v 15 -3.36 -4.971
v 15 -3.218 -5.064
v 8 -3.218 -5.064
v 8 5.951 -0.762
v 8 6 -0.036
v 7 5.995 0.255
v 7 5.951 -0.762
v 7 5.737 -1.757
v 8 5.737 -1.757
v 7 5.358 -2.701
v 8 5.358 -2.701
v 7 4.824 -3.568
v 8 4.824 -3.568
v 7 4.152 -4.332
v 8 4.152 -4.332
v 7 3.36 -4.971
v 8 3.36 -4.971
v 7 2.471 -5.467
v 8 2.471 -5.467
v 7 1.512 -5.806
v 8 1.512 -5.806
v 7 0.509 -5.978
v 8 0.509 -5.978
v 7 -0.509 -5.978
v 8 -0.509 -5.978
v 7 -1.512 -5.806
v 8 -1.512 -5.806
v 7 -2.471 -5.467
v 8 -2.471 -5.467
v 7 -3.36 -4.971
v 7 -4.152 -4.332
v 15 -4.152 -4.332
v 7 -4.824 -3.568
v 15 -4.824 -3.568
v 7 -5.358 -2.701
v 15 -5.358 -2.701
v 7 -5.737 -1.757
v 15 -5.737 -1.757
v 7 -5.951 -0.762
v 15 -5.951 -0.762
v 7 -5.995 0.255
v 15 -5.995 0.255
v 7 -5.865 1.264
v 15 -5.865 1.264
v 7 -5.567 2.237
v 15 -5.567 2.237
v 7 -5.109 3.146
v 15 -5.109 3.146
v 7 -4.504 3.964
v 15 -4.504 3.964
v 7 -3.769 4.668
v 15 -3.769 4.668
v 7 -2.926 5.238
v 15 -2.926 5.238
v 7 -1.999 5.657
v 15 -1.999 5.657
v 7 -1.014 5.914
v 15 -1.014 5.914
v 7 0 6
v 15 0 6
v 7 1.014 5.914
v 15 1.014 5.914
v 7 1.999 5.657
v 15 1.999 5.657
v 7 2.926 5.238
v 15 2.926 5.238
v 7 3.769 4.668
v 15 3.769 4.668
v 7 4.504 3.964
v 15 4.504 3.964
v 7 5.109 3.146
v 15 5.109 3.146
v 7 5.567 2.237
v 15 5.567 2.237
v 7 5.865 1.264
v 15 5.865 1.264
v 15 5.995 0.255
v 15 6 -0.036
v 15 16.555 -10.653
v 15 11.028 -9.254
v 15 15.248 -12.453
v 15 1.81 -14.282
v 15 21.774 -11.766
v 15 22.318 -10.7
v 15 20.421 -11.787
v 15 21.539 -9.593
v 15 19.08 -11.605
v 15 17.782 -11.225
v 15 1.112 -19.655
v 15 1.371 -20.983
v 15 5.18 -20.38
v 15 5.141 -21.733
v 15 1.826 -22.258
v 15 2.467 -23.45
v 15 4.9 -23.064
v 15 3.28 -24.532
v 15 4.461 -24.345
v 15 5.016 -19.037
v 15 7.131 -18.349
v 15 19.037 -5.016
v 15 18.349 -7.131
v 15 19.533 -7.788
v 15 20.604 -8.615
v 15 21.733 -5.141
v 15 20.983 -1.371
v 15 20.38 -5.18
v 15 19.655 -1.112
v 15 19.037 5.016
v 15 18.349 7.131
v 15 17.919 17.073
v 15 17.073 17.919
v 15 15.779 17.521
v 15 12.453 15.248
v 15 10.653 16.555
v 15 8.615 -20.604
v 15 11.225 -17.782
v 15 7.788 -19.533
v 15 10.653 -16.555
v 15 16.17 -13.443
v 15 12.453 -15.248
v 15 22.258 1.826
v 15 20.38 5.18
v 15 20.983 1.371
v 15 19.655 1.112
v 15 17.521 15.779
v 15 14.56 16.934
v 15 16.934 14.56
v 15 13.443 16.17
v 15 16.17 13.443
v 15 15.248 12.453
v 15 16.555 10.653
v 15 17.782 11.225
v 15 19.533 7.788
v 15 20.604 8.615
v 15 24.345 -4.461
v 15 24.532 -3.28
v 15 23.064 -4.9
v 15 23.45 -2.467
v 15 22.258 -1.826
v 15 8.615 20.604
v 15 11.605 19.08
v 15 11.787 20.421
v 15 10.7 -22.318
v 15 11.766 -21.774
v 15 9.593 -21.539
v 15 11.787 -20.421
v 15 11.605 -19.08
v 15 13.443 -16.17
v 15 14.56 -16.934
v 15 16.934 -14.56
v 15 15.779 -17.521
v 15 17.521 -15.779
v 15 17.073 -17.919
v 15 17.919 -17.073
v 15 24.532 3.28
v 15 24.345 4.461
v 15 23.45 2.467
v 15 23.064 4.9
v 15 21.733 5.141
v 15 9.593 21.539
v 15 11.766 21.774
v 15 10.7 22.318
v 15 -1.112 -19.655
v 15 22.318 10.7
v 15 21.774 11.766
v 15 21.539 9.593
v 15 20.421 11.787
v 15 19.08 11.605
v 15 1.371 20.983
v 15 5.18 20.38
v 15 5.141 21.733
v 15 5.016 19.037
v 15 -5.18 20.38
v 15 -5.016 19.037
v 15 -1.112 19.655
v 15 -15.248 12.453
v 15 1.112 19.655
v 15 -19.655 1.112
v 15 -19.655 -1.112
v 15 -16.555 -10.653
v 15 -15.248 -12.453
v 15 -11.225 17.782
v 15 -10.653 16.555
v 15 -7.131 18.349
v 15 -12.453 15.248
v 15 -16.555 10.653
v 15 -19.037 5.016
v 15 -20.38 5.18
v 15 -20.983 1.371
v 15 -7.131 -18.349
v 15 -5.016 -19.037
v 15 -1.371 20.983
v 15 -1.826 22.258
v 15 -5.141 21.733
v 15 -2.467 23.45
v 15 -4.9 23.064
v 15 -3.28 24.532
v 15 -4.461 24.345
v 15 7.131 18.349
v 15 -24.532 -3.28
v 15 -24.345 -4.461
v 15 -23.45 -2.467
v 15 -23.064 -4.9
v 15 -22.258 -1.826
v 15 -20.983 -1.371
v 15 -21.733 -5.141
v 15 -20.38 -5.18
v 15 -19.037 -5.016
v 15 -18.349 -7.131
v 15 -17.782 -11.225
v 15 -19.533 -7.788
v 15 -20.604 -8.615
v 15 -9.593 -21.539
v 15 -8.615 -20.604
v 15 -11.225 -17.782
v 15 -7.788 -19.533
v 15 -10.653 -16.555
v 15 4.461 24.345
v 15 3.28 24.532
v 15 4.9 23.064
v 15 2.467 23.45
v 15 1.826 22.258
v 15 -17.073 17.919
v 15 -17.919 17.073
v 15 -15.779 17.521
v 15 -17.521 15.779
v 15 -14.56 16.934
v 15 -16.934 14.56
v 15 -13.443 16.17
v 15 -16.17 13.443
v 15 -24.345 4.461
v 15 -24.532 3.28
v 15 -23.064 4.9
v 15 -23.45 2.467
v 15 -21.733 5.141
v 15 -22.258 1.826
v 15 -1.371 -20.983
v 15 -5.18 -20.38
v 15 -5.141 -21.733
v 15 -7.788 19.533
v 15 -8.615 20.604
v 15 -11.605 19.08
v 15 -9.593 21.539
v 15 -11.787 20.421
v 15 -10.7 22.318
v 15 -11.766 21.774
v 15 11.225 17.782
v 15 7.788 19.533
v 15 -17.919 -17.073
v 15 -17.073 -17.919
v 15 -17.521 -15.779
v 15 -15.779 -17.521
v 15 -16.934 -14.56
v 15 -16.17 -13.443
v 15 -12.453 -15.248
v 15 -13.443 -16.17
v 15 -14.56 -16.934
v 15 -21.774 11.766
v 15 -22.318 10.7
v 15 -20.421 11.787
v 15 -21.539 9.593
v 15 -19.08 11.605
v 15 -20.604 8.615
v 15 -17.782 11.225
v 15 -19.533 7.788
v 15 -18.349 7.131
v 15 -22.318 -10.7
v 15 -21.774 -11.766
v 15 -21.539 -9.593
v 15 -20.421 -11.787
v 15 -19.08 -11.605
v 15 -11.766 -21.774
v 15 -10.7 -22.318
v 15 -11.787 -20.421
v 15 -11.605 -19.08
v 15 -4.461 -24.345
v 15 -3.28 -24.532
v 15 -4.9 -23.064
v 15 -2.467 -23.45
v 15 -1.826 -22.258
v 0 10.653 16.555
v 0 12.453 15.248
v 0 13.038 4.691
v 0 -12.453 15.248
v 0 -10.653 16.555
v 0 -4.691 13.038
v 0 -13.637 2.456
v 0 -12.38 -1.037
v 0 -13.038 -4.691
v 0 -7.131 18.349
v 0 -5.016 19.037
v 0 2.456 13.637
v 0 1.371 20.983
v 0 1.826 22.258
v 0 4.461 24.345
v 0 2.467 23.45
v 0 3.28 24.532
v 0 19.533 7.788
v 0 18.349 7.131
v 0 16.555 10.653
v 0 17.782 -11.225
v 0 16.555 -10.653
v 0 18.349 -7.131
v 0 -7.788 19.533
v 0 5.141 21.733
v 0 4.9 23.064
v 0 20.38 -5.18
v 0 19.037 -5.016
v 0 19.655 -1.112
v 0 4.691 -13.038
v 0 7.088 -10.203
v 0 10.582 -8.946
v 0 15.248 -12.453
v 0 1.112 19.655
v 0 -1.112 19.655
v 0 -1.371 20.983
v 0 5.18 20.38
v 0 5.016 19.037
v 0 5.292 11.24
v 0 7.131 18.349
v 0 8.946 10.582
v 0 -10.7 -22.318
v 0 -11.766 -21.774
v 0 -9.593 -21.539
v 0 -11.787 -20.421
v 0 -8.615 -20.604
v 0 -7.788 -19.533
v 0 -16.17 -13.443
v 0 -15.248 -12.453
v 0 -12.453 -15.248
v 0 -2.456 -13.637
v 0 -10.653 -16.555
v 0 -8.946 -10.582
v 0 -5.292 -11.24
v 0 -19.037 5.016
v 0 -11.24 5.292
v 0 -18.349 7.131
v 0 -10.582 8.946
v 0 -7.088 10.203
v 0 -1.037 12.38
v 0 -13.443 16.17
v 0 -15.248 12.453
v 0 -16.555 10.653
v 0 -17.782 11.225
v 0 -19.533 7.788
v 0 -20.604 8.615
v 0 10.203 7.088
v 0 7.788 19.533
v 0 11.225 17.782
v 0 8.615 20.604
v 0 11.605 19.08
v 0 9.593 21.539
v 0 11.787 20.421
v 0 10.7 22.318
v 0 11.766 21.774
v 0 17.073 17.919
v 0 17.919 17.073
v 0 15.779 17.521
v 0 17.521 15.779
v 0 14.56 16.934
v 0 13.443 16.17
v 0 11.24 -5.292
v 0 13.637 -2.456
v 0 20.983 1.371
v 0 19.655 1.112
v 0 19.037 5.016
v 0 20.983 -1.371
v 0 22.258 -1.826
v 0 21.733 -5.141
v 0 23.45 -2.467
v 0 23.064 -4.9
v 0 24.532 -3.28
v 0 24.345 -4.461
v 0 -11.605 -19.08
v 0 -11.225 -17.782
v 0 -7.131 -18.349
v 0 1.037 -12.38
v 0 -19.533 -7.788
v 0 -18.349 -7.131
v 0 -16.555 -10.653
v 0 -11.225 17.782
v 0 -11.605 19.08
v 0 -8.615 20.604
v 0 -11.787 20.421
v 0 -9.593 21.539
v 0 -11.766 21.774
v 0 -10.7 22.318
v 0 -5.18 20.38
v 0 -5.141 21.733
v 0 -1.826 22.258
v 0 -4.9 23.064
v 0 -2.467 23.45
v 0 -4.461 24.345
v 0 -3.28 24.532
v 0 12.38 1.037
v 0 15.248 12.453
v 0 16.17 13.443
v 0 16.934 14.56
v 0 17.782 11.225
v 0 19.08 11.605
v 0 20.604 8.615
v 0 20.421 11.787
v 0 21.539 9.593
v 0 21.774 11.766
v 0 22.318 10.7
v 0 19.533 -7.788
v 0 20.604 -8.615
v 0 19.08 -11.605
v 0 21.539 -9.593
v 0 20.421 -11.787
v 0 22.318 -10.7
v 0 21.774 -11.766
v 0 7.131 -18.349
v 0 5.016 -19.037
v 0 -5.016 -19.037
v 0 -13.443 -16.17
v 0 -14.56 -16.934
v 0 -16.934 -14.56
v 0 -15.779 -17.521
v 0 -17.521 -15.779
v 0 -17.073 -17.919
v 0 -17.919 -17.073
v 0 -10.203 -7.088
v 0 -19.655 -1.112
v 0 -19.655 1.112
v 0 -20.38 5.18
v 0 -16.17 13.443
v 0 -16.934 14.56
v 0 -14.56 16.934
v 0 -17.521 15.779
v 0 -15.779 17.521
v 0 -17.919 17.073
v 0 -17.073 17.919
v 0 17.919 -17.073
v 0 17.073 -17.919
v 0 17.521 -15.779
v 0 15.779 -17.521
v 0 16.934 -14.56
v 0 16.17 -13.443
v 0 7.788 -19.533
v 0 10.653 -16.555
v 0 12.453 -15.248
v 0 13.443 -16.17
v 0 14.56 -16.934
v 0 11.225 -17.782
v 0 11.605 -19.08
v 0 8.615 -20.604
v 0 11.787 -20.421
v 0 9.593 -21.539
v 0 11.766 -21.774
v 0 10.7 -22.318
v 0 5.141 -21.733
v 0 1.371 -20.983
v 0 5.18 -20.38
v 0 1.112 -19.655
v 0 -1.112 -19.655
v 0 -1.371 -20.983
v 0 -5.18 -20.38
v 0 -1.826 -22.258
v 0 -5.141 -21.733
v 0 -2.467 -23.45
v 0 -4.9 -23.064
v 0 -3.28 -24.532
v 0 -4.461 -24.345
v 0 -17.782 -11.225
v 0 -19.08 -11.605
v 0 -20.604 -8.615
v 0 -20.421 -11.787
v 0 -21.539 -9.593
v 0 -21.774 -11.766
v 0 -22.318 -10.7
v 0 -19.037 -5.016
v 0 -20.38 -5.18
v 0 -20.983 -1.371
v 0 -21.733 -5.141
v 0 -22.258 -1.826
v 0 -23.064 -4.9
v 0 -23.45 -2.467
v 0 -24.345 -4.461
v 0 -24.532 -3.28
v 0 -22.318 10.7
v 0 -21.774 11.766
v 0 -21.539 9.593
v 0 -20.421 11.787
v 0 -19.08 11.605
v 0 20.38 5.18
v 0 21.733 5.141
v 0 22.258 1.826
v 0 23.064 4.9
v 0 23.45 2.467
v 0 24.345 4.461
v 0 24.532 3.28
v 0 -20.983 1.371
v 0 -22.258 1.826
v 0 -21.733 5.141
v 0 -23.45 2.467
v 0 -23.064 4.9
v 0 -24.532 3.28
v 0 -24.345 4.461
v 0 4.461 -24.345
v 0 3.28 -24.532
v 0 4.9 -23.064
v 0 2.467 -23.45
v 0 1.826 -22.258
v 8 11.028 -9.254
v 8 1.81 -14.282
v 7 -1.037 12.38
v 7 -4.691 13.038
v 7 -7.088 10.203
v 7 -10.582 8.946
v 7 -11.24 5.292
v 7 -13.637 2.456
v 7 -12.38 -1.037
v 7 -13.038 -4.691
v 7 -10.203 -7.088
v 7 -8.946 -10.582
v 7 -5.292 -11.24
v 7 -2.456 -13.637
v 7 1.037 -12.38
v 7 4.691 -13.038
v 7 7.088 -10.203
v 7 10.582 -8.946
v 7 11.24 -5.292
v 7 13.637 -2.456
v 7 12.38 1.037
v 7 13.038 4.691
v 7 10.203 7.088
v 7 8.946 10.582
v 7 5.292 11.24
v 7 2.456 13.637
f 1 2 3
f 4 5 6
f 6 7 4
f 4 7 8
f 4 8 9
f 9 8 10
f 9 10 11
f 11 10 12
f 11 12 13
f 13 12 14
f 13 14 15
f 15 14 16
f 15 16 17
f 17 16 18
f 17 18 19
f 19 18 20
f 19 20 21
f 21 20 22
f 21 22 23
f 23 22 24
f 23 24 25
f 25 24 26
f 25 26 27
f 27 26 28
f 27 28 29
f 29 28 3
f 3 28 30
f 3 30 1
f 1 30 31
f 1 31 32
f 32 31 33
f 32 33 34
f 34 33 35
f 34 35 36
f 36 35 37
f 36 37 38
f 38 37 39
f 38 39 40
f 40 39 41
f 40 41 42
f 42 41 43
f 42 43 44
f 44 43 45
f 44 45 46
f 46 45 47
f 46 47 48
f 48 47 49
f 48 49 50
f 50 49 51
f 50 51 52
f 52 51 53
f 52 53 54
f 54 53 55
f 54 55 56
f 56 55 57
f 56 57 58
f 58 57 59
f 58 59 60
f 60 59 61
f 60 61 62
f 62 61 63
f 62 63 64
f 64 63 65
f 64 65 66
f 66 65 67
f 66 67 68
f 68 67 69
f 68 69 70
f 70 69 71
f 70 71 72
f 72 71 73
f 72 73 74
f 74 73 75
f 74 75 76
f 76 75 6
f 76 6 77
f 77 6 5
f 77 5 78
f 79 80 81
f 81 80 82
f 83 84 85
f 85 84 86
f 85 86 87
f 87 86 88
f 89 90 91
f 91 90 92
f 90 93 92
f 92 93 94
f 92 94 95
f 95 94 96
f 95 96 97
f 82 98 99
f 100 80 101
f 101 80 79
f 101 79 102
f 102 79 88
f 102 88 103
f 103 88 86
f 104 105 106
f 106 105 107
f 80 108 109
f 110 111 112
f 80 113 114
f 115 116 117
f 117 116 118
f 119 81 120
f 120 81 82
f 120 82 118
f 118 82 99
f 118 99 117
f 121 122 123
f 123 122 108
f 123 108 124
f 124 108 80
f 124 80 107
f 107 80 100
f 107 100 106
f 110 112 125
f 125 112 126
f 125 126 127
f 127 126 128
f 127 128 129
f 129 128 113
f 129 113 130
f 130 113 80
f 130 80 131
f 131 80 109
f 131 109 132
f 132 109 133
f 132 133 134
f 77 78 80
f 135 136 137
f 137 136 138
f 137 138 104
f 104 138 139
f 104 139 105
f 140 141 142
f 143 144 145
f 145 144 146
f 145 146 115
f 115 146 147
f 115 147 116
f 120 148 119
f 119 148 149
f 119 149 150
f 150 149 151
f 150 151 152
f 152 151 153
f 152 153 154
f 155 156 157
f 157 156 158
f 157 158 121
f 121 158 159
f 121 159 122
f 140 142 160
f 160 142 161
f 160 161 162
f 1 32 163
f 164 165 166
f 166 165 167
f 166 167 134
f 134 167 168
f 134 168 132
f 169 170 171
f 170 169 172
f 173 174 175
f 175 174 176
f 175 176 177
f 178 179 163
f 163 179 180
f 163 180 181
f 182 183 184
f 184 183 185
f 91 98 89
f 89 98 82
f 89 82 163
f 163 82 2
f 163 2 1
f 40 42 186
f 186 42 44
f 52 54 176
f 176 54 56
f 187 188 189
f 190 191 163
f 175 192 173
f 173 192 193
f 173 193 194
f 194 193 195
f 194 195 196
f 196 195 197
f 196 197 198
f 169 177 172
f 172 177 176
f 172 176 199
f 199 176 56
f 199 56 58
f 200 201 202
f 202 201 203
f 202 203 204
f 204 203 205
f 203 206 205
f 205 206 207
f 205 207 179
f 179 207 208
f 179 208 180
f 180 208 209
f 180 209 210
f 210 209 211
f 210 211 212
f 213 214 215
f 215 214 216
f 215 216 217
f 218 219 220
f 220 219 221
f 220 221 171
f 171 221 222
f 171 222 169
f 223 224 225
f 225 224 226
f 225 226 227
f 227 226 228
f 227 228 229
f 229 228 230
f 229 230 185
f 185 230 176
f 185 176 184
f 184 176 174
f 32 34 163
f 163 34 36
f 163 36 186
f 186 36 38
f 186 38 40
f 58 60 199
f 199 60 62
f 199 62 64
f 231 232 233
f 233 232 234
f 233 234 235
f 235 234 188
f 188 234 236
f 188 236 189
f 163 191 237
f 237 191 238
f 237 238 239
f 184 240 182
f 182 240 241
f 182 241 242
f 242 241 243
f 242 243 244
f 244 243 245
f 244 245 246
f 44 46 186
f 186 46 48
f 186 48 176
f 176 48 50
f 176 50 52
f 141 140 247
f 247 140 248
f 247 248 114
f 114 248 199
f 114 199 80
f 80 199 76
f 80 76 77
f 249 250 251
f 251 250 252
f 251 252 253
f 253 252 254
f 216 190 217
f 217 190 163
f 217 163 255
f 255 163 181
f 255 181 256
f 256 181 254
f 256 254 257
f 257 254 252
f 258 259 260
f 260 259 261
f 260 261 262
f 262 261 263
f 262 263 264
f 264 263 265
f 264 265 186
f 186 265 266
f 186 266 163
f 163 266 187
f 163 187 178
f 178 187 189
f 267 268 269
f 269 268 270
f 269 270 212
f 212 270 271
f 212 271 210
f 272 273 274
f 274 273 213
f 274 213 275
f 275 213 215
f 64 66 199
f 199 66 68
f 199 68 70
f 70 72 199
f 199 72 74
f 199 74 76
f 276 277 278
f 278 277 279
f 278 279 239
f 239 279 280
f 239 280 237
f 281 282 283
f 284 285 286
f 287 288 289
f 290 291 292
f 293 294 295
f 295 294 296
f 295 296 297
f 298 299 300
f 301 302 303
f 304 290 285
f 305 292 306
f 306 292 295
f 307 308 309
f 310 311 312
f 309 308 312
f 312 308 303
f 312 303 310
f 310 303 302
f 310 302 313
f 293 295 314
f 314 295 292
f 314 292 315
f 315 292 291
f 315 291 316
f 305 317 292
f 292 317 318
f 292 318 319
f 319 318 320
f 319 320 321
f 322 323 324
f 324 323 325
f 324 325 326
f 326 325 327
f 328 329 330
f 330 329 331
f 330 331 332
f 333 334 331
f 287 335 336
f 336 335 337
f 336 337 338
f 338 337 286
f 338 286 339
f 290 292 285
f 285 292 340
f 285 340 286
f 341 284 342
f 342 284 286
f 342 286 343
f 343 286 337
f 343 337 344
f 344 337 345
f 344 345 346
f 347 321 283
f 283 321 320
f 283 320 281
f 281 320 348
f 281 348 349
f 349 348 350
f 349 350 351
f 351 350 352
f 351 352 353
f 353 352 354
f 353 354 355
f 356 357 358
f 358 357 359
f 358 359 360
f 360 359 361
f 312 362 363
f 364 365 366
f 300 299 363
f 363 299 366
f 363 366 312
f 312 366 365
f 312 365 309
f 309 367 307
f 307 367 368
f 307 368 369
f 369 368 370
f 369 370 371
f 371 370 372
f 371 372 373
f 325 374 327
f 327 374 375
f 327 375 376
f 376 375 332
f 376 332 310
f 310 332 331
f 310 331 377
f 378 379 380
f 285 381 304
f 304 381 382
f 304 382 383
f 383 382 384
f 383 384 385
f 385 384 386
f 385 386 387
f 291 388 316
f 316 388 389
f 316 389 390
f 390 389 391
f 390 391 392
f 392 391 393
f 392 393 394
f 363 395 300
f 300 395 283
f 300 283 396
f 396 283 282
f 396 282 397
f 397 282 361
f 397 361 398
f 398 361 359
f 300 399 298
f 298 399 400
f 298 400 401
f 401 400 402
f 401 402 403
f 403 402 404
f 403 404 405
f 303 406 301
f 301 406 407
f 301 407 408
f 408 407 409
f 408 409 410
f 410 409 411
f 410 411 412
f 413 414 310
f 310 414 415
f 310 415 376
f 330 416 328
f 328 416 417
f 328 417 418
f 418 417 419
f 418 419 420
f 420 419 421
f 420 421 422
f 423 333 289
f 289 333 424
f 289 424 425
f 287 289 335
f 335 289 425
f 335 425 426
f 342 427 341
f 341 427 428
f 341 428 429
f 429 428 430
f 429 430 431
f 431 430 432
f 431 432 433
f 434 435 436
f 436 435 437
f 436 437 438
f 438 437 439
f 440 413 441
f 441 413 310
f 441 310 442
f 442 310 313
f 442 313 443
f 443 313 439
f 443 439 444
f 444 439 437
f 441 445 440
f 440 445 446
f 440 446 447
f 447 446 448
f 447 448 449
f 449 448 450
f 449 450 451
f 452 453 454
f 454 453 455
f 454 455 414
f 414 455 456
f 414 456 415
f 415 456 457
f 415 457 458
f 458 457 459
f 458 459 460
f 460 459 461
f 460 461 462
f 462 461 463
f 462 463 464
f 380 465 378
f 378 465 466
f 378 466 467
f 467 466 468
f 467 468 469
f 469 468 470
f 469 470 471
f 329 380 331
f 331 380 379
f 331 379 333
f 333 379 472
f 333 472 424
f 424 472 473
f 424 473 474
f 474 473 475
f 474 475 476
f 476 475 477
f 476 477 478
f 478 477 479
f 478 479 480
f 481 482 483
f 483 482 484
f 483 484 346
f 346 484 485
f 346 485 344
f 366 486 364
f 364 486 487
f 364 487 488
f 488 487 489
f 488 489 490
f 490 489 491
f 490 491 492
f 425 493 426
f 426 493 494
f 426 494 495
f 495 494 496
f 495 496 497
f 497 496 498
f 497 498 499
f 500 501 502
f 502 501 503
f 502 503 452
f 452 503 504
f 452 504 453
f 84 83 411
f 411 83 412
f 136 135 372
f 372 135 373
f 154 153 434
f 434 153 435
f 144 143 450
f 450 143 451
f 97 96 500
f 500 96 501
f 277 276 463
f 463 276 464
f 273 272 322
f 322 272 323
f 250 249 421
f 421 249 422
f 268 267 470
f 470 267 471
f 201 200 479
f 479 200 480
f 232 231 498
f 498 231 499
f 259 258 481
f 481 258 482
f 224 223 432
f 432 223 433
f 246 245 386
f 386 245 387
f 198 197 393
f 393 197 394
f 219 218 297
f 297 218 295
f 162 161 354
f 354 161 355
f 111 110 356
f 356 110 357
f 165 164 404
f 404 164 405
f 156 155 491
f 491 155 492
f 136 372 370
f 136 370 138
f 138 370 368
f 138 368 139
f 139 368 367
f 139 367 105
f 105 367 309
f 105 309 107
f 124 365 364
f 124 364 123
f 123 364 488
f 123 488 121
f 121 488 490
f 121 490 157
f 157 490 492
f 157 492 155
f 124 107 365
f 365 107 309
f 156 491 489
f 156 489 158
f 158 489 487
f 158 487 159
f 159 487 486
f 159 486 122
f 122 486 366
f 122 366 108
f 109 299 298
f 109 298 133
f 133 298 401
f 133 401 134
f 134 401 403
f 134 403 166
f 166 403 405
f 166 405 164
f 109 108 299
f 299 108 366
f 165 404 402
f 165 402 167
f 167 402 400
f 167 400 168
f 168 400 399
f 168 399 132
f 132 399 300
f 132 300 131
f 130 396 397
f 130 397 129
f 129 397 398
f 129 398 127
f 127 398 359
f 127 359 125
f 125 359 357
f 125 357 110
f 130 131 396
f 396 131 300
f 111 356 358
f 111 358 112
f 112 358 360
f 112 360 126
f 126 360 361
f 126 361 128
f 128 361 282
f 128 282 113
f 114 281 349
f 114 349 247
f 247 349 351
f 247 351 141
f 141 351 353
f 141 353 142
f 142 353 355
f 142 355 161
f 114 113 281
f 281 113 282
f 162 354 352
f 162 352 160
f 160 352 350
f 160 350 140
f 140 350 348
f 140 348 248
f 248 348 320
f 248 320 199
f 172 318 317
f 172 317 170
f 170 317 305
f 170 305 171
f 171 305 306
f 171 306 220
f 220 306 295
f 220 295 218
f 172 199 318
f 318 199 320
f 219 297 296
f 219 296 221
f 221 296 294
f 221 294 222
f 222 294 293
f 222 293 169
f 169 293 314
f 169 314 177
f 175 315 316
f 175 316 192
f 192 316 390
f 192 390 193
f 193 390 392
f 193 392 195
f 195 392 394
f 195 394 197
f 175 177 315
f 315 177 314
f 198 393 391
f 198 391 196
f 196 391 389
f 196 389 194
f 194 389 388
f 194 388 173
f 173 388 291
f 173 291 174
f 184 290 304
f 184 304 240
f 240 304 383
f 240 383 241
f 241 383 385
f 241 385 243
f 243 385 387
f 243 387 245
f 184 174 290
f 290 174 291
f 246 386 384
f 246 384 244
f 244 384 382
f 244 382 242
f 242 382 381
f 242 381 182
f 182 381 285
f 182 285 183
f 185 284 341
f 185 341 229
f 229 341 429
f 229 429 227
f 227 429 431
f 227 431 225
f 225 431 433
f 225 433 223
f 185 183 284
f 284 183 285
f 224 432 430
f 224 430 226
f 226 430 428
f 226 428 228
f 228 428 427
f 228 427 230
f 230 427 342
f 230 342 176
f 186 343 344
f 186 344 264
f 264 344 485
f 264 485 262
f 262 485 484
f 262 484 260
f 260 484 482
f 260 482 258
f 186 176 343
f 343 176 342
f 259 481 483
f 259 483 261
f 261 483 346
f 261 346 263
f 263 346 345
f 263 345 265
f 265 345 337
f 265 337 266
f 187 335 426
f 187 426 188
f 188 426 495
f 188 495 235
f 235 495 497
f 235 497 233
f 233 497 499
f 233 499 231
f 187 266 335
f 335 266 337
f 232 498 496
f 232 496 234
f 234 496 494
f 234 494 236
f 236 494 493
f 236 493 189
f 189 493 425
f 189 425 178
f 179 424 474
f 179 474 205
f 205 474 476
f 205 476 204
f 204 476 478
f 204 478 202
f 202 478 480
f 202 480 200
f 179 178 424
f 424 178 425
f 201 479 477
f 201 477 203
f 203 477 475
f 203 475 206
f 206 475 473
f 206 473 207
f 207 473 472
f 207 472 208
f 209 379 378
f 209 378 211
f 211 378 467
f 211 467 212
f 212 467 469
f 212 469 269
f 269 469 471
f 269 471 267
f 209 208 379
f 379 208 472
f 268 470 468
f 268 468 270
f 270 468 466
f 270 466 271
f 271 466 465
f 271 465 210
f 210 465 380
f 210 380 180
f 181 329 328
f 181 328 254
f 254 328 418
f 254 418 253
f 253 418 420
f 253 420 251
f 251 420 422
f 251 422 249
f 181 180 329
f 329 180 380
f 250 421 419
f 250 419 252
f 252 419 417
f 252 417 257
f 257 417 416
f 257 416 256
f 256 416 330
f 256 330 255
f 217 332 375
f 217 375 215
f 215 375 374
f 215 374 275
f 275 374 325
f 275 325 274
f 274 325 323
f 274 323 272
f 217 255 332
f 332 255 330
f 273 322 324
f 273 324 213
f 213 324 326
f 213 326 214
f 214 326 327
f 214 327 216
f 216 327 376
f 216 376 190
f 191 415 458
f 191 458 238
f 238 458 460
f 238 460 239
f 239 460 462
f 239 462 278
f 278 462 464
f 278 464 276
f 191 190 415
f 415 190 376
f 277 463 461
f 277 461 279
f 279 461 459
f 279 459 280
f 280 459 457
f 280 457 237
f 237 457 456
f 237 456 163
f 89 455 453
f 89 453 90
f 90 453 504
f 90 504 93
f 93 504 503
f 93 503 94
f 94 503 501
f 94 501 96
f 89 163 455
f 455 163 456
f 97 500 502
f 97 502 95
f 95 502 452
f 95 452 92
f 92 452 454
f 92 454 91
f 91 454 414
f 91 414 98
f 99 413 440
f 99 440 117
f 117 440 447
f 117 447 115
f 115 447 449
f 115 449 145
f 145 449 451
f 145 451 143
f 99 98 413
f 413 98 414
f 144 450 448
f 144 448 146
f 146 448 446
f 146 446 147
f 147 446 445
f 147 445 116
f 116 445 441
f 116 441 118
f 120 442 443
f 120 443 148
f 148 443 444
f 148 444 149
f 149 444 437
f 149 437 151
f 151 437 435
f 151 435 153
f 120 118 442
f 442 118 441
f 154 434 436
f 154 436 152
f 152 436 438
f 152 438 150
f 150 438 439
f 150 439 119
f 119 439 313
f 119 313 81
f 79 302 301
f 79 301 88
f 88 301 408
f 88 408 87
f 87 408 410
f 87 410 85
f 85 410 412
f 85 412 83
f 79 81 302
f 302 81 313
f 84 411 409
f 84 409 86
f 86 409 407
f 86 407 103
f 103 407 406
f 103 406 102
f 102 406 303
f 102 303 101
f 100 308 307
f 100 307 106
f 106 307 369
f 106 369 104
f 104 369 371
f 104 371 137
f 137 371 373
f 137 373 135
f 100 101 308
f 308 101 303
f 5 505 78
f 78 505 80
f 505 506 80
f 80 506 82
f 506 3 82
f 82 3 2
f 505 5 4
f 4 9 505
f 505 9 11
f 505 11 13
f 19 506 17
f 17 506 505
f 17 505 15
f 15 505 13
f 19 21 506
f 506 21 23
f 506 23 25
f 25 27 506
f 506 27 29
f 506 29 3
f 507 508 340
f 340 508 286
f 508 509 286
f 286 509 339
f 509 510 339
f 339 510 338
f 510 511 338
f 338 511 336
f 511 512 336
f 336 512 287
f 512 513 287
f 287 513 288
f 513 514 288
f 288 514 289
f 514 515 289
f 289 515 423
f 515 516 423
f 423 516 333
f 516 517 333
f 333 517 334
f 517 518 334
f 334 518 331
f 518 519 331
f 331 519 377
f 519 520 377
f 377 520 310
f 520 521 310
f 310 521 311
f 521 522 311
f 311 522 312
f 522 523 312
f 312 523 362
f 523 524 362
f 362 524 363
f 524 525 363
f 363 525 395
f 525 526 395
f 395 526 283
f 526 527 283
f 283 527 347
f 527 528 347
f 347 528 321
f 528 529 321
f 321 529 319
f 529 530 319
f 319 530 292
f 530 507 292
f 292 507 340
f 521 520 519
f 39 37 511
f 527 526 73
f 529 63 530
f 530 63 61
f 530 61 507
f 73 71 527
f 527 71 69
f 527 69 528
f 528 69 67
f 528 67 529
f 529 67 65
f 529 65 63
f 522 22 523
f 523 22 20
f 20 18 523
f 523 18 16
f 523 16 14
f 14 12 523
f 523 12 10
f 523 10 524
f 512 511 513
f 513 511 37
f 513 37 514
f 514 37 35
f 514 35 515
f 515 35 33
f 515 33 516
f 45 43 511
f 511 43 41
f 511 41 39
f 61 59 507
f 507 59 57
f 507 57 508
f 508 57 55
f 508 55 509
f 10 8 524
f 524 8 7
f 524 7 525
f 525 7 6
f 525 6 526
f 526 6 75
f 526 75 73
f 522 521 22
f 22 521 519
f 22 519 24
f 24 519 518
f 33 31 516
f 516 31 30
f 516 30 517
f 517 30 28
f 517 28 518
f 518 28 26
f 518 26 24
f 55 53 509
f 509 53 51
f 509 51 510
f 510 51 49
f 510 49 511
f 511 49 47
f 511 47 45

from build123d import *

# Parameters (mm, degrees)
BASPROSKE_W        = 15
BASPROSKE_H        = 24.75
TOOTHCUT_DEPTH     = 39.080506824
TEETHCUTS_COUNT    = 20
BORSKE_R           = 6
BORE_DEPTH         = 50.0000508
SKETCH1_R          = 6
CUT_EXTRUDE1_DEPTH = 7
CUT_EXTRUDE2_DEPTH = 7


with BuildPart() as part:
    # BasProSke → Base-Revolve (revolve)
    with BuildSketch(Plane(origin=(0, 0, 0), x_dir=(1, 0, 0), z_dir=(0, 1, 0)), mode=Mode.PRIVATE) as base_revolve_sk:
        with Locations((7.5, 12.375)):
            Rectangle(BASPROSKE_W, BASPROSKE_H)
    revolve(base_revolve_sk.sketch.rotate(Axis((-10, 0, 0), (1, 0, 0)), 180), axis=Axis((-10, 0, 0), (1, 0, 0)))

    # TooCutSke → ToothCut (cut, through all)
    with BuildSketch(Plane(origin=(0, 0, 0), x_dir=(0, 0, -1), z_dir=(1, 0, 0))):
        with BuildLine():
            ThreePointArc((1.111948432, 19.655071939), (0, 19.6865), (-1.111948432, 19.655071939))
            ThreePointArc((-1.111948432, 19.655071939), (-1.832349961, 22.271720111), (-3.300041734, 24.55463642))
            ThreePointArc((-3.300041734, 24.55463642), (0, 24.7754), (3.300041734, 24.55463642))
            ThreePointArc((3.300041734, 24.55463642), (1.832349961, 22.271720111), (1.111948432, 19.655071939))
        make_face()
    toothcut = extrude(amount=TOOTHCUT_DEPTH, mode=Mode.SUBTRACT)

    # TeethCuts: ToothCut ×20 about axis
    teethcuts_axis = Axis((0, 0, 0), (1, 0, 0))
    for i in range(1, TEETHCUTS_COUNT):
        add(toothcut.rotate(teethcuts_axis, i * 360 / TEETHCUTS_COUNT), mode=Mode.SUBTRACT)

    # BorSke → Bore (cut, symmetric)
    with BuildSketch(Plane(origin=(0, 0, 0), x_dir=(0, 0, -1), z_dir=(1, 0, 0))):
        with Locations(Location((0, 0, 0), (0, 0, 180))):
            Circle(BORSKE_R)
    extrude(amount=BORE_DEPTH, both=True, mode=Mode.SUBTRACT)

    # Sketch1 → Cut-Extrude1 (cut)
    with BuildSketch(Plane(origin=(15, 0, 0), x_dir=(0, 0, -1), z_dir=(1, 0, 0))):
        with BuildLine():
            ThreePointArc((6, 0), (4.255305349, 4.229938107), (0.035874537, 5.999892751))
            Line((0.035874537, 5.999892751), (5.064141431, -3.217836473))
            ThreePointArc((5.064141431, -3.217836473), (5.761286687, -1.675582199), (6, 0))
        make_face()
        with BuildLine():
            Line((5.064141431, -3.217836473), (0.035874537, 5.999892751))
            ThreePointArc((0.035874537, 5.999892751), (-5.267273842, -2.873295368), (5.064141431, -3.217836473))
        make_face()
        with Locations(Location((0, 0, 0), (0, 0, 89.657421369))):
            Circle(SKETCH1_R)
        Polygon((0.035874537, 5.999892751), (5.064141431, -3.217836473), (14.281870655, 1.810430421), (9.25360376, 11.028159645), align=None)
    extrude(amount=-CUT_EXTRUDE1_DEPTH, mode=Mode.SUBTRACT)

    # Sketch2 → Cut-Extrude2 (cut)
    with BuildSketch(Plane.ZY):
        Polygon((13.03803352, -4.691447745), (10.581929687, 8.945544371), (-2.456103832, 13.636992116), (-13.03803352, 4.691447745), (-10.581929687, -8.945544371), (2.456103832, -13.636992116), align=None)
        Polygon((13.636992116, 2.456103832), (4.691447745, 13.03803352), (-8.945544371, 10.581929687), (-13.636992116, -2.456103832), (-4.691447745, -13.03803352), (8.945544371, -10.581929687), align=None)
        Polygon((-13.636992116, -2.456103832), (-11.240040726, -5.291523347), (-12.379922481, 1.03742672), align=None)
        Polygon((-10.581929687, -8.945544371), (-7.088399135, -10.202614006), (-11.240040726, -5.291523347), align=None)
        Polygon((-4.691447745, -13.03803352), (-1.03742672, -12.379922481), (-7.088399135, -10.202614006), align=None)
        Polygon((2.456103832, -13.636992116), (5.291523347, -11.240040726), (-1.03742672, -12.379922481), align=None)
        Polygon((8.945544371, -10.581929687), (10.202614006, -7.088399135), (5.291523347, -11.240040726), align=None)
        Polygon((10.202614006, -7.088399135), (13.03803352, -4.691447745), (12.379922481, -1.03742672), align=None)
        Polygon((7.088399135, 10.202614006), (11.240040726, 5.291523347), (10.581929687, 8.945544371), align=None)
        Polygon((11.240040726, 5.291523347), (12.379922481, -1.03742672), (13.636992116, 2.456103832), align=None)
        Polygon((1.03742672, 12.379922481), (7.088399135, 10.202614006), (4.691447745, 13.03803352), align=None)
        Polygon((-5.291523347, 11.240040726), (1.03742672, 12.379922481), (-2.456103832, 13.636992116), align=None)
        Polygon((-10.202614006, 7.088399135), (-5.291523347, 11.240040726), (-8.945544371, 10.581929687), align=None)
        Polygon((-12.379922481, 1.03742672), (-10.202614006, 7.088399135), (-13.03803352, 4.691447745), align=None)
    extrude(amount=-CUT_EXTRUDE2_DEPTH, mode=Mode.SUBTRACT)


solid = part.part
